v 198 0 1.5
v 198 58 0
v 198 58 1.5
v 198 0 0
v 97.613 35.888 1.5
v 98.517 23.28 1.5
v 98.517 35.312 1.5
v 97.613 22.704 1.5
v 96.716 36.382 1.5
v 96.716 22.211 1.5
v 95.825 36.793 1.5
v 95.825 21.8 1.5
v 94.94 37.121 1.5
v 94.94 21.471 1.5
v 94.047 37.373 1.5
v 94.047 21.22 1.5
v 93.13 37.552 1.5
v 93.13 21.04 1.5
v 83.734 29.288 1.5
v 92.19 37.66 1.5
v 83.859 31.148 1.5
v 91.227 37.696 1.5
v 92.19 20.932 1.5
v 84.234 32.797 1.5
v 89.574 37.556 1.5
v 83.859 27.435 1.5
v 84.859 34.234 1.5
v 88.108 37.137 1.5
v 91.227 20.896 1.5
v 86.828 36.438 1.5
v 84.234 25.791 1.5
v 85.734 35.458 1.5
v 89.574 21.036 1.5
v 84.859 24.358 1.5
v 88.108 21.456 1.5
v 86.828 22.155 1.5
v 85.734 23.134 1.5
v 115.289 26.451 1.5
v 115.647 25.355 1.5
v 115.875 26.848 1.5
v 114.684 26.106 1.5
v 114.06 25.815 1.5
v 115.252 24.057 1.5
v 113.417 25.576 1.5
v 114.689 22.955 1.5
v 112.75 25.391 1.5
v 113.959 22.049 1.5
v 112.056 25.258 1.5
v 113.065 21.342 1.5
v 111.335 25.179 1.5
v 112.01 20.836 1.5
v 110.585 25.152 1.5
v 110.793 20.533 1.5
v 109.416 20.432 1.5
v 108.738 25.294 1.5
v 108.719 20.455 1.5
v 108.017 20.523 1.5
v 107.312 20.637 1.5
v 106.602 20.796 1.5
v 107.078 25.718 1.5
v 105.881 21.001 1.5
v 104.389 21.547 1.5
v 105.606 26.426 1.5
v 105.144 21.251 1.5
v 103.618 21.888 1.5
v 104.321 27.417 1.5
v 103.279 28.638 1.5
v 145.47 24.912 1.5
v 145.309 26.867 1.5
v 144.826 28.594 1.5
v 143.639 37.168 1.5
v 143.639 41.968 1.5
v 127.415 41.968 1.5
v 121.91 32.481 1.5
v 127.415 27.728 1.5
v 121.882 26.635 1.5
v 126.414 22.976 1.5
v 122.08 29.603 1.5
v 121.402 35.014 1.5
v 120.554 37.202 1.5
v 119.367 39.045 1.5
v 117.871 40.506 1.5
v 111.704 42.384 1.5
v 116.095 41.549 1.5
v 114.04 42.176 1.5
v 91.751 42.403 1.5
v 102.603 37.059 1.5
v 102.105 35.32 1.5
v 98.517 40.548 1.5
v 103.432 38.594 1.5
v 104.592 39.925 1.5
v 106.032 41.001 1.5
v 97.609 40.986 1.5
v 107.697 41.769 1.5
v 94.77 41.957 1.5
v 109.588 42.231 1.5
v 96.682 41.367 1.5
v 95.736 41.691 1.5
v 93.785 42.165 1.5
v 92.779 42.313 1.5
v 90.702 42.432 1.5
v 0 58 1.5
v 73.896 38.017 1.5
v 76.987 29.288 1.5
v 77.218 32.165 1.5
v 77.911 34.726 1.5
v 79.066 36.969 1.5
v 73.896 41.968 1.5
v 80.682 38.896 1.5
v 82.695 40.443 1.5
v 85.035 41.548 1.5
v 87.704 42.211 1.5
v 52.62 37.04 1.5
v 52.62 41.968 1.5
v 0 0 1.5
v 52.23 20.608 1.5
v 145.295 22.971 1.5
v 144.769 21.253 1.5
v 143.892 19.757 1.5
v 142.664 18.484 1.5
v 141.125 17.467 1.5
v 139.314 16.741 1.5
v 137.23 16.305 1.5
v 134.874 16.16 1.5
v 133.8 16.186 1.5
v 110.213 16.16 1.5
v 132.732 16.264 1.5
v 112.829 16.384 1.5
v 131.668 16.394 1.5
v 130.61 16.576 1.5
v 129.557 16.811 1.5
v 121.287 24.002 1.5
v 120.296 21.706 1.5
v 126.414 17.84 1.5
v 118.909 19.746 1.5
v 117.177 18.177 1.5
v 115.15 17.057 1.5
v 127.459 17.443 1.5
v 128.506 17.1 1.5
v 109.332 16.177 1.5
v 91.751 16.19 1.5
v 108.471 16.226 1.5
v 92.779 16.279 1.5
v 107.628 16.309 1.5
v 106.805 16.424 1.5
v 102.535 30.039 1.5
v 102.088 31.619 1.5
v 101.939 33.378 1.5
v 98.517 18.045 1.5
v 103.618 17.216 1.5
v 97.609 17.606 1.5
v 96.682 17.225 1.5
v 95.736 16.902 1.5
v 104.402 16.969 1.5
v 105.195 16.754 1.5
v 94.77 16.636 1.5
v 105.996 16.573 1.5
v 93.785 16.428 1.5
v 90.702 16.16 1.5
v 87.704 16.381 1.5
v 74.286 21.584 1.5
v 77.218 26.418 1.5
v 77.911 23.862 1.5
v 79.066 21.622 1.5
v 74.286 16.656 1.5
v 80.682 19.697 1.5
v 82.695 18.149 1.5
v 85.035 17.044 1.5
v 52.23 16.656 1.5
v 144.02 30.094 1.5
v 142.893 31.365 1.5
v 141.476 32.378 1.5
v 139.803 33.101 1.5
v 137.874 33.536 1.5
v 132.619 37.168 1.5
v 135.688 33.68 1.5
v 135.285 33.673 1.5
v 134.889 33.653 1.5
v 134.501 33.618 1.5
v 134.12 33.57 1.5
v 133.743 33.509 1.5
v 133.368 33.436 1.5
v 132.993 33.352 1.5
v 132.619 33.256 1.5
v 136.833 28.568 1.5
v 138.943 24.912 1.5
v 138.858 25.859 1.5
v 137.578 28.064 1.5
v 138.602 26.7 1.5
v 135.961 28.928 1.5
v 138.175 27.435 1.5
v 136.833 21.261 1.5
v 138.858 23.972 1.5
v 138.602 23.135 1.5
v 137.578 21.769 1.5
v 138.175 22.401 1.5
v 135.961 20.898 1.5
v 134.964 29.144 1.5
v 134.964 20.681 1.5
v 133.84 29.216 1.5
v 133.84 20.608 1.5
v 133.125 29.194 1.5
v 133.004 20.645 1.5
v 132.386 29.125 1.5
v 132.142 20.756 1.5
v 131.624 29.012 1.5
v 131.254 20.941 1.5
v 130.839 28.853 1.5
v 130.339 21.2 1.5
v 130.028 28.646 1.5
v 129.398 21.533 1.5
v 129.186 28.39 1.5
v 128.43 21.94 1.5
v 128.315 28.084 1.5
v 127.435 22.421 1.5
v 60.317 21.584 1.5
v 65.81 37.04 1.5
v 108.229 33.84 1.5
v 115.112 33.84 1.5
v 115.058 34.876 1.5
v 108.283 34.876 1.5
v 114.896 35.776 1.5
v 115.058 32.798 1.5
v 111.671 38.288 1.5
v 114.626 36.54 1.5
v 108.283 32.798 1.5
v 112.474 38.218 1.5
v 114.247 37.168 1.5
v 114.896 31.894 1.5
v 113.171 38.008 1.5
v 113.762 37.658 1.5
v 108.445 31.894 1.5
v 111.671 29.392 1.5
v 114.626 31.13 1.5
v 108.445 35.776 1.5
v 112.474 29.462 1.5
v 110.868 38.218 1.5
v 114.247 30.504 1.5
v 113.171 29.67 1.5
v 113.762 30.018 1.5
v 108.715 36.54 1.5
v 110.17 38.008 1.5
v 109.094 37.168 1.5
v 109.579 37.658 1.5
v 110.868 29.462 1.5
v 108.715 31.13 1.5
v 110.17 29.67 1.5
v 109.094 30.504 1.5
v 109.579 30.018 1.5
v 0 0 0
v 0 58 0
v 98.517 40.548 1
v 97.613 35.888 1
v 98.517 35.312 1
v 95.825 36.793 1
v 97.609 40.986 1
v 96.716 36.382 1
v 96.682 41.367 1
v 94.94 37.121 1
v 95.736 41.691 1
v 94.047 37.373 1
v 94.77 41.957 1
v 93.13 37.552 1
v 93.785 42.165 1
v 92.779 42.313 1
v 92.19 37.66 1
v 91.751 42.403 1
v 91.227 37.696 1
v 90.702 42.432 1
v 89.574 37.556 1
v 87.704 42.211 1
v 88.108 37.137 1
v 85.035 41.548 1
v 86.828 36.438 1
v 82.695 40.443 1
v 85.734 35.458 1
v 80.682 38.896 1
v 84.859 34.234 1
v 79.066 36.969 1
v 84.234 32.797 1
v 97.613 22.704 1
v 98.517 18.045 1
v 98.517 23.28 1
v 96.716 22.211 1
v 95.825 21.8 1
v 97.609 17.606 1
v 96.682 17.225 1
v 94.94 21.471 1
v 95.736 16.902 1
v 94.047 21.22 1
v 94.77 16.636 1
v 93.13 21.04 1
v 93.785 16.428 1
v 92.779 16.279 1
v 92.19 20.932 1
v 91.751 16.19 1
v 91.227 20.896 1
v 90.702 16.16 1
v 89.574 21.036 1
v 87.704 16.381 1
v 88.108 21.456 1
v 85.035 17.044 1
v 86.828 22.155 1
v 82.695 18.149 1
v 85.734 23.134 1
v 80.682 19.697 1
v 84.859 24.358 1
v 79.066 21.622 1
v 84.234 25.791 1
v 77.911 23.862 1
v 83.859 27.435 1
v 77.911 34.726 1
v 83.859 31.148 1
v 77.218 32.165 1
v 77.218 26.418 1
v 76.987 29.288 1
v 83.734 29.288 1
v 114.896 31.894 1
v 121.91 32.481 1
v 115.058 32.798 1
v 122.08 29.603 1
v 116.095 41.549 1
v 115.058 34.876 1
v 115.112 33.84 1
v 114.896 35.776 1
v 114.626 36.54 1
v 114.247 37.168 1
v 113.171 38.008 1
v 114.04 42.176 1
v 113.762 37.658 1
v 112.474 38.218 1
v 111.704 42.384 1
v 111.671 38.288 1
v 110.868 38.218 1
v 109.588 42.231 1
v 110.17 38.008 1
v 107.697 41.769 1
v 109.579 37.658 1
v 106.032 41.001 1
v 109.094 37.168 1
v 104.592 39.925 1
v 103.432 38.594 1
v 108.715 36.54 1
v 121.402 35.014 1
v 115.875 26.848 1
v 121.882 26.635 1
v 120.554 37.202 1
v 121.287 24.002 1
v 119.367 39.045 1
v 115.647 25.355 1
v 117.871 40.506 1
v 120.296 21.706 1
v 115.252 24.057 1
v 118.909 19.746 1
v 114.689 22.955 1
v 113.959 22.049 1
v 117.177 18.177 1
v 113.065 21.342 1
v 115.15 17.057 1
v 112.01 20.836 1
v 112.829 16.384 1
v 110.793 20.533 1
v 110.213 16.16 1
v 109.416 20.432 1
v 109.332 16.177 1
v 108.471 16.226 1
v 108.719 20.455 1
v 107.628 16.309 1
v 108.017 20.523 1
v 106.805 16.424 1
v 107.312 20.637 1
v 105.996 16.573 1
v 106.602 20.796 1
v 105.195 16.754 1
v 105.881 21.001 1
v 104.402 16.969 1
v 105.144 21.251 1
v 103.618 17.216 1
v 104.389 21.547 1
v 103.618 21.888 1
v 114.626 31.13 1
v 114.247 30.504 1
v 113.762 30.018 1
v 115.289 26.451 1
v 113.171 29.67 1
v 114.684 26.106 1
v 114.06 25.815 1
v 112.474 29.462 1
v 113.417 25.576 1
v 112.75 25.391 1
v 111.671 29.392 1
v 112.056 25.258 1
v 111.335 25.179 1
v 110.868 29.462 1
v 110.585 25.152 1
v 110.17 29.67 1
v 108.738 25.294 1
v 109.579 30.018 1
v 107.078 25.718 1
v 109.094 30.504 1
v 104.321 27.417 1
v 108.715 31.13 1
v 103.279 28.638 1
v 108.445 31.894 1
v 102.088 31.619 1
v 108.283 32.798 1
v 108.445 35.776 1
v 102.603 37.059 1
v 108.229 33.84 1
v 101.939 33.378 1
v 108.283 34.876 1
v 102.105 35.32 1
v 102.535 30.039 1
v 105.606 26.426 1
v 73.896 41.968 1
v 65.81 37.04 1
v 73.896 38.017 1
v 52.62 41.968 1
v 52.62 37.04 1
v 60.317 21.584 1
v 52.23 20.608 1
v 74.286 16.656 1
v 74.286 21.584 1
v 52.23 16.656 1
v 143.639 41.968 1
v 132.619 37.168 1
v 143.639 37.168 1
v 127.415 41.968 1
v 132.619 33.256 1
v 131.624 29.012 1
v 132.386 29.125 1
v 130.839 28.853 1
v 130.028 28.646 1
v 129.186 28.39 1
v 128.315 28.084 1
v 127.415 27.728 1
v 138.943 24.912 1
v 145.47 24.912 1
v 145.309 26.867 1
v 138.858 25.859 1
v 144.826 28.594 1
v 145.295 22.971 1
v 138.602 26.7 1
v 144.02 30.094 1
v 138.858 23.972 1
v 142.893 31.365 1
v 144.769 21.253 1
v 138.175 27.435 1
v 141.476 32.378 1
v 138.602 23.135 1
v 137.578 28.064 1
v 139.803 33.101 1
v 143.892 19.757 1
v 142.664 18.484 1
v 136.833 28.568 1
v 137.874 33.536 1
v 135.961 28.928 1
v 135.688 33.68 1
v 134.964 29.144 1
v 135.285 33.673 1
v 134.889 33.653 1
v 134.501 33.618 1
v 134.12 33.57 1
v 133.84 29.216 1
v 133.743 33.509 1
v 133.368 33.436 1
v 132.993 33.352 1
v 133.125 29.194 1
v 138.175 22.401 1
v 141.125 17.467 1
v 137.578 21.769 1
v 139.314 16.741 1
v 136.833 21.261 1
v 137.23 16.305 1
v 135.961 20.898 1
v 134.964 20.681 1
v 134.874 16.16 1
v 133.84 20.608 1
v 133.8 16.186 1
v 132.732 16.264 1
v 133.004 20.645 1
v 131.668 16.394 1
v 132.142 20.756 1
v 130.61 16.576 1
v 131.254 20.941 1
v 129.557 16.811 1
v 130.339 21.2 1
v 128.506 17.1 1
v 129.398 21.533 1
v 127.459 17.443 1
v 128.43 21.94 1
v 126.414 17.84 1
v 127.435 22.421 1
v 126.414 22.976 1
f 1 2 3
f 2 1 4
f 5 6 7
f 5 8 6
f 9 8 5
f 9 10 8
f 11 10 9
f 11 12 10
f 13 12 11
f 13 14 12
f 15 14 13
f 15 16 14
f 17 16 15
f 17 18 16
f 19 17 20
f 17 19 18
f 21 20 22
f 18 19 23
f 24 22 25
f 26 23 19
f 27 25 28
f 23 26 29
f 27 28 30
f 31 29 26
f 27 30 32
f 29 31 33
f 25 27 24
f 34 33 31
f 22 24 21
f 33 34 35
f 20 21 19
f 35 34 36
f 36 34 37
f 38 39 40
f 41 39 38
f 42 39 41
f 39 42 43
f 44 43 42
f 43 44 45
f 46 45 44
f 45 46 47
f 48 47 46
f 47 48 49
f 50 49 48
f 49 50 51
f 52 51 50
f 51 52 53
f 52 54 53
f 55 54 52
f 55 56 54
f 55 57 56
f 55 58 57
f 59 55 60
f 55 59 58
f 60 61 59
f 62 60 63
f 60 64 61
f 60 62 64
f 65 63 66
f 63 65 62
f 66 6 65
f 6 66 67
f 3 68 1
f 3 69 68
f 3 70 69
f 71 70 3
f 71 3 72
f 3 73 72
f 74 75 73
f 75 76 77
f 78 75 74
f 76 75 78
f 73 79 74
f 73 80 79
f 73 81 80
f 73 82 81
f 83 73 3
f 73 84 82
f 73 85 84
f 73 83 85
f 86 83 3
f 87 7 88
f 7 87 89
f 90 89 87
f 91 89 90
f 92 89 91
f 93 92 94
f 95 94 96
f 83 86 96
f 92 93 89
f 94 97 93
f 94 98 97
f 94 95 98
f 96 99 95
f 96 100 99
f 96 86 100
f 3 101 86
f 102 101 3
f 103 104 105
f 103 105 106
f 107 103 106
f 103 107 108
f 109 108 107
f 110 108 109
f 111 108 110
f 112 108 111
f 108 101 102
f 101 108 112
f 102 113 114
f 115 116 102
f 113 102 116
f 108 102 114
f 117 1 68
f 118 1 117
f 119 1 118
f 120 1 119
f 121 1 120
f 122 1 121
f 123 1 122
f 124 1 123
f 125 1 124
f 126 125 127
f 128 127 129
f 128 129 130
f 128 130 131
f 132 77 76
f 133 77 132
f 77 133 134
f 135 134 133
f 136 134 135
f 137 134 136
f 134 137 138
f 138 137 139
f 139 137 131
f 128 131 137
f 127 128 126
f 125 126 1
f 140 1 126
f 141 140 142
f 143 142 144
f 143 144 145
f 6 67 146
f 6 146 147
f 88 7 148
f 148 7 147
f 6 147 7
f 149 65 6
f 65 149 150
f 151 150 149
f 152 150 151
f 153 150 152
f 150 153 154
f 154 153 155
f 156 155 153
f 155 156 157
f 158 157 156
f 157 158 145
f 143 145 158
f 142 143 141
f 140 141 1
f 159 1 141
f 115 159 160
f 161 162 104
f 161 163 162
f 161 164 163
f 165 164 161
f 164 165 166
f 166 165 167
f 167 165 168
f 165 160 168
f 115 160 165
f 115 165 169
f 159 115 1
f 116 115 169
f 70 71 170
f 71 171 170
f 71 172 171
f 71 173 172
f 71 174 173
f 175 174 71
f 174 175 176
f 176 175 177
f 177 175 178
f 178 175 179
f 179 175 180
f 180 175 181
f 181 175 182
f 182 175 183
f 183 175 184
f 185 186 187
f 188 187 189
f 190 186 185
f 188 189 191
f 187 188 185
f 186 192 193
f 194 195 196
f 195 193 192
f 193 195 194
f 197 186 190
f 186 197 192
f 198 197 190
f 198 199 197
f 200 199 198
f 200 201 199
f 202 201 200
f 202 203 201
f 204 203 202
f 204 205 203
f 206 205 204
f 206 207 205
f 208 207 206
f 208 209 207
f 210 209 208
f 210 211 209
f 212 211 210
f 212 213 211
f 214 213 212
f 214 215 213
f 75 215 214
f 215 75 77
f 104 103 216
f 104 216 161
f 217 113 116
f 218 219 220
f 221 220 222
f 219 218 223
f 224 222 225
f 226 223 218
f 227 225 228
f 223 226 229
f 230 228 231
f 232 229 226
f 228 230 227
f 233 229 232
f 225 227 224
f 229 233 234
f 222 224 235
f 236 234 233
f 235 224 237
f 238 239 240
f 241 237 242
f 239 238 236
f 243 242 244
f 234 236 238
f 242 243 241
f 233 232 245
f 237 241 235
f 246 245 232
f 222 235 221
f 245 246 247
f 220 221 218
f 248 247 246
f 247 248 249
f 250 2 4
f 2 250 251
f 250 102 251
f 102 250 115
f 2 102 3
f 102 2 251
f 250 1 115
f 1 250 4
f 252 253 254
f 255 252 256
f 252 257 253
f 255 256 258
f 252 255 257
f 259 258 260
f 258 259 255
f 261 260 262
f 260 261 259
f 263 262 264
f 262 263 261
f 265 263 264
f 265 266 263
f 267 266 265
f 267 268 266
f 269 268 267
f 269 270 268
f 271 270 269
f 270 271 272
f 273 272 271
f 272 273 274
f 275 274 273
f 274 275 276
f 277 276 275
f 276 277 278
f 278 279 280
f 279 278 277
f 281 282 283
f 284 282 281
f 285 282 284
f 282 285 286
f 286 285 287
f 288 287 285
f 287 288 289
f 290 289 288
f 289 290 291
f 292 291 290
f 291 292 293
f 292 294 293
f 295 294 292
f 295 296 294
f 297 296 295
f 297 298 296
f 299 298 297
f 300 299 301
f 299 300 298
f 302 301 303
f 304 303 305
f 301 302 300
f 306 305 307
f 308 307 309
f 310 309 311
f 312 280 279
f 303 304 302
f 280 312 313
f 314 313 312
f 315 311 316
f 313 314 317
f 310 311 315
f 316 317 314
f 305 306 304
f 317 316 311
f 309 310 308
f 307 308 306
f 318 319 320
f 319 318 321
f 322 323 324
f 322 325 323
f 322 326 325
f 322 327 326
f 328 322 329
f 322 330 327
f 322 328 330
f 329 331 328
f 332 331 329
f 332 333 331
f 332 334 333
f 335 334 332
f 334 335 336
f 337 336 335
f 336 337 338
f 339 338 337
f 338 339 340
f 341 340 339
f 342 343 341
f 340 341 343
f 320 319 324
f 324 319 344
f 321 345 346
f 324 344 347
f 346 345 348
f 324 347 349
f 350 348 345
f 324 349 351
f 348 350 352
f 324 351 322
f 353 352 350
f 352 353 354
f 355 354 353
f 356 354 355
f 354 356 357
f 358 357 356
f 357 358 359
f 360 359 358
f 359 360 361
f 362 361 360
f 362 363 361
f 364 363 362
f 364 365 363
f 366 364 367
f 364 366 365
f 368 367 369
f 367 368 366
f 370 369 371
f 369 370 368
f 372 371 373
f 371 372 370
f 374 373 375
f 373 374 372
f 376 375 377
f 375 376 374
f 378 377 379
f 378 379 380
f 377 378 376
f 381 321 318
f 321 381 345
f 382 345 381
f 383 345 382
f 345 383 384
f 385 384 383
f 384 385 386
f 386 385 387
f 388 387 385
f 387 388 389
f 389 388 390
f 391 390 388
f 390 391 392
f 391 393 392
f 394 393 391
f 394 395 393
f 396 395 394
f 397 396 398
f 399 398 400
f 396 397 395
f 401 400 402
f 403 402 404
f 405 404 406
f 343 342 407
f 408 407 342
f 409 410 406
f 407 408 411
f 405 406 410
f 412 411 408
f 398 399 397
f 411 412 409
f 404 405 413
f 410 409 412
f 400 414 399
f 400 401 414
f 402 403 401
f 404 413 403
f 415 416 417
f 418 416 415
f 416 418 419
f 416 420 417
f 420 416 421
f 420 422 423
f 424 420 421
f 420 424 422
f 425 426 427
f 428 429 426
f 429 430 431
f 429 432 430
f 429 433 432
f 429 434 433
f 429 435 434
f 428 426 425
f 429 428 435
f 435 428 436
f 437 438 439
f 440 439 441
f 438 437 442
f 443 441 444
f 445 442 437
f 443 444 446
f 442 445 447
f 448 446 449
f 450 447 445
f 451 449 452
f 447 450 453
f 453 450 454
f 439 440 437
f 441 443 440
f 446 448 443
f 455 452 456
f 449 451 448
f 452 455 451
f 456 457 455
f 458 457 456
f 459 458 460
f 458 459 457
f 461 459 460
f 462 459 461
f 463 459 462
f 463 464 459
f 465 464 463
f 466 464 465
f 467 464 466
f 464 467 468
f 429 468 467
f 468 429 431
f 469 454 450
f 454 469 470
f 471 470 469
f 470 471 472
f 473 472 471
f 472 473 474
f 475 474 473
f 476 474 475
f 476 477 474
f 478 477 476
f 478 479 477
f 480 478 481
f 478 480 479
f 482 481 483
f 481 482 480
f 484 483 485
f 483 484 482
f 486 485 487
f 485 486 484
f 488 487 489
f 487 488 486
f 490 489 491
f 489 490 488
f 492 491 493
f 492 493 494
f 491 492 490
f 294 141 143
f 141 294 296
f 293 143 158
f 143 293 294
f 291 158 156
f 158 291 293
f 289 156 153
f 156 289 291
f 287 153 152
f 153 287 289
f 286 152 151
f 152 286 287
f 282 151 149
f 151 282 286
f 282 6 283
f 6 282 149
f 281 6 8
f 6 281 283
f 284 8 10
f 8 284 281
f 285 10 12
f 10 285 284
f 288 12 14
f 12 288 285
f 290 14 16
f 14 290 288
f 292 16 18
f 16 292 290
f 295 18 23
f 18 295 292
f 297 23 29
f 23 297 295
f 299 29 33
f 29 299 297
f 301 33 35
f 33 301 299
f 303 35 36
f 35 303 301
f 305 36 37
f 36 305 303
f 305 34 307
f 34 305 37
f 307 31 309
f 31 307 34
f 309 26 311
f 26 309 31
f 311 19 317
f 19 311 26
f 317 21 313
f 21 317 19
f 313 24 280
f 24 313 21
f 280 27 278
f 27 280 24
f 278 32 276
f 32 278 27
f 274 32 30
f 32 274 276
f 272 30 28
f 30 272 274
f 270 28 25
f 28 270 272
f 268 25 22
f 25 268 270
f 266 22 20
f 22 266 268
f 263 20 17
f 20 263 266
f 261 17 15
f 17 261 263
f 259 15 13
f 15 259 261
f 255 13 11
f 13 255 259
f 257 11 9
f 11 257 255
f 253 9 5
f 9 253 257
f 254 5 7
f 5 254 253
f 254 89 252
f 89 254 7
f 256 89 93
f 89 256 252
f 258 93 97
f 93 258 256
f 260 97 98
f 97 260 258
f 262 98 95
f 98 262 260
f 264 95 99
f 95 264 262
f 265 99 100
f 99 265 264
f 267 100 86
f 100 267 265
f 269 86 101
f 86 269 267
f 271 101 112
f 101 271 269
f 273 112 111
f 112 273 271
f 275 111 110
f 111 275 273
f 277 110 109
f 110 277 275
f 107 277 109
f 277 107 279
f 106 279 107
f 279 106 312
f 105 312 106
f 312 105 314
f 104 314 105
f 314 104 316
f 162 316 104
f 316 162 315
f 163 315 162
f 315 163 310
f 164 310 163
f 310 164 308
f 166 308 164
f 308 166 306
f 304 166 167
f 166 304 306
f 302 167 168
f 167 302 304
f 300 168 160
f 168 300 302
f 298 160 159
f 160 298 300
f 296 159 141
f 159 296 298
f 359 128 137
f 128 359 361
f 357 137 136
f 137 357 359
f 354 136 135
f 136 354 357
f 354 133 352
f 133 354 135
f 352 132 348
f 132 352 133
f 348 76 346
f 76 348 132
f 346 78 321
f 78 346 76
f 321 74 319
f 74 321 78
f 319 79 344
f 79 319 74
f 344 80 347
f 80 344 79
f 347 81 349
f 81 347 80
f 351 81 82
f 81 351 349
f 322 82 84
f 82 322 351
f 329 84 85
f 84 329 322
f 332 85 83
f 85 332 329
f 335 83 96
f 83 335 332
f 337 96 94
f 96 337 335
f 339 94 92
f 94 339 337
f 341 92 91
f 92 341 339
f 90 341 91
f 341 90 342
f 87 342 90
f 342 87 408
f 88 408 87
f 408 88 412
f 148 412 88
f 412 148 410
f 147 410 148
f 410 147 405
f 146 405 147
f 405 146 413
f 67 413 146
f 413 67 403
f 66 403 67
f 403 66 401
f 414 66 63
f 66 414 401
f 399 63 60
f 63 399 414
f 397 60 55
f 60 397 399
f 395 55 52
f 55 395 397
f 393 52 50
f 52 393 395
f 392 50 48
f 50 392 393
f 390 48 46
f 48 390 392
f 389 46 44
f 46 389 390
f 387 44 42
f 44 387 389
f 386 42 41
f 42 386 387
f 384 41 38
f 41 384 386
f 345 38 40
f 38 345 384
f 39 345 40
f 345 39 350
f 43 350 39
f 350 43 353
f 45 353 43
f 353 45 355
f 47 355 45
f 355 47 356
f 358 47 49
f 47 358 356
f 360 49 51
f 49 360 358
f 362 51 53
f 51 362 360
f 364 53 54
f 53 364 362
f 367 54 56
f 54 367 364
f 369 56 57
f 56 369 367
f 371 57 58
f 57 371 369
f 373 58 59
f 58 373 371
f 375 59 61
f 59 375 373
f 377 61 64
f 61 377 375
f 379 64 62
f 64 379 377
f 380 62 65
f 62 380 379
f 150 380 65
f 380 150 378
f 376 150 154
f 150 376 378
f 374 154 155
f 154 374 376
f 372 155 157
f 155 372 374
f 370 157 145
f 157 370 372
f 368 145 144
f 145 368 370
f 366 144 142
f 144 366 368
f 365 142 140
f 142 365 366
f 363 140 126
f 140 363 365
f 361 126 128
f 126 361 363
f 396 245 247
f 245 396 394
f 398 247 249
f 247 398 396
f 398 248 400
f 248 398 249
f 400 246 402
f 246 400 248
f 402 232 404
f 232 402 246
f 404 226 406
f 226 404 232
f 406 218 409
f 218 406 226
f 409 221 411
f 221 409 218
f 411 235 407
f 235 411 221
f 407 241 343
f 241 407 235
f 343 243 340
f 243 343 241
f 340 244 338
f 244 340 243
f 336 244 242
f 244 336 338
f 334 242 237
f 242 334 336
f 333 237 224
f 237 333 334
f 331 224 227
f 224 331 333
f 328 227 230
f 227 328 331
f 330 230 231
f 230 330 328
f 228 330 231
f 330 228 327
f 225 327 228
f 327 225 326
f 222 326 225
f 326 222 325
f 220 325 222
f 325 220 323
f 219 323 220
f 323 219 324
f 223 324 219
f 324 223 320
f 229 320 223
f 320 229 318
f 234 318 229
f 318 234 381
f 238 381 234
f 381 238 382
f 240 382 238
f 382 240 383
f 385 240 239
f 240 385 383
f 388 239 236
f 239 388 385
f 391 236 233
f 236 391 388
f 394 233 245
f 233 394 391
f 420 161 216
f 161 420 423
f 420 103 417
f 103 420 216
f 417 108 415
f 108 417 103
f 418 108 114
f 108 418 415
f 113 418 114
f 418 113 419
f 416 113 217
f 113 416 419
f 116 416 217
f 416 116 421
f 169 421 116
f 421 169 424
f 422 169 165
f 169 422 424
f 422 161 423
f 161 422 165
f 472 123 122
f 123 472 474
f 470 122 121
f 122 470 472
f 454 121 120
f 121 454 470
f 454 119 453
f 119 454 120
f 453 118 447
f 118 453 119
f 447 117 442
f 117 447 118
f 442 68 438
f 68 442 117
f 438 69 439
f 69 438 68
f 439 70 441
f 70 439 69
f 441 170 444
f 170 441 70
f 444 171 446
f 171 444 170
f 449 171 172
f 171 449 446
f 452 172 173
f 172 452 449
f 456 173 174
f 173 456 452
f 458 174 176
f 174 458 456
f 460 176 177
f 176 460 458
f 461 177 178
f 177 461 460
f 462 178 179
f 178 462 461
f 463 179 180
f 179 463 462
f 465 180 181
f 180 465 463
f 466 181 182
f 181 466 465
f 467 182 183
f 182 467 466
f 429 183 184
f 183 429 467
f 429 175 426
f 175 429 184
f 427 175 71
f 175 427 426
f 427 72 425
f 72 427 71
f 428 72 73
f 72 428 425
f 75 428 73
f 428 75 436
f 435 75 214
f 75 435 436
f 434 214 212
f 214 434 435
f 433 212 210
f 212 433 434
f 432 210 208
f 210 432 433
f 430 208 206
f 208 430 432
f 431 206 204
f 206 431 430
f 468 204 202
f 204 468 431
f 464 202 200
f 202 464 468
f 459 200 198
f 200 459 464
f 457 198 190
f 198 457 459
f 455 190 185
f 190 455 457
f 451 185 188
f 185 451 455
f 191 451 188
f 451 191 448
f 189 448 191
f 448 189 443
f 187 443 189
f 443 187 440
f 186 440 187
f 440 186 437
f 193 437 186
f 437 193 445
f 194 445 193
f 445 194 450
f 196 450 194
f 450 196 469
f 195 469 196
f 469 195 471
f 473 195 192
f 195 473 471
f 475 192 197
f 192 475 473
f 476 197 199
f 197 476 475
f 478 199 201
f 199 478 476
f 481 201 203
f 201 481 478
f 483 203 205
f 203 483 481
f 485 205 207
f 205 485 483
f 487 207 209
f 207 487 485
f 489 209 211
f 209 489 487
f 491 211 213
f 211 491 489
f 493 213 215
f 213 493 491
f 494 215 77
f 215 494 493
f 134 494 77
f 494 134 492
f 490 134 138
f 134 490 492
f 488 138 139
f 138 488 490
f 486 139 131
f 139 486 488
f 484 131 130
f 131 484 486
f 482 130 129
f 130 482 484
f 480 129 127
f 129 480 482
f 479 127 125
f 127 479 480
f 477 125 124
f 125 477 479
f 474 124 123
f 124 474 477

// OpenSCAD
difference() {
  cube([198,58,1.5]);
  translate([0,0,1])linear_extrude(height=.5){ 
    translate([198/2, 58/2]) {
         text("ZC95", font = "Liberation:style=Bold", size=25,halign="center",valign="center");
    }
  }
}
